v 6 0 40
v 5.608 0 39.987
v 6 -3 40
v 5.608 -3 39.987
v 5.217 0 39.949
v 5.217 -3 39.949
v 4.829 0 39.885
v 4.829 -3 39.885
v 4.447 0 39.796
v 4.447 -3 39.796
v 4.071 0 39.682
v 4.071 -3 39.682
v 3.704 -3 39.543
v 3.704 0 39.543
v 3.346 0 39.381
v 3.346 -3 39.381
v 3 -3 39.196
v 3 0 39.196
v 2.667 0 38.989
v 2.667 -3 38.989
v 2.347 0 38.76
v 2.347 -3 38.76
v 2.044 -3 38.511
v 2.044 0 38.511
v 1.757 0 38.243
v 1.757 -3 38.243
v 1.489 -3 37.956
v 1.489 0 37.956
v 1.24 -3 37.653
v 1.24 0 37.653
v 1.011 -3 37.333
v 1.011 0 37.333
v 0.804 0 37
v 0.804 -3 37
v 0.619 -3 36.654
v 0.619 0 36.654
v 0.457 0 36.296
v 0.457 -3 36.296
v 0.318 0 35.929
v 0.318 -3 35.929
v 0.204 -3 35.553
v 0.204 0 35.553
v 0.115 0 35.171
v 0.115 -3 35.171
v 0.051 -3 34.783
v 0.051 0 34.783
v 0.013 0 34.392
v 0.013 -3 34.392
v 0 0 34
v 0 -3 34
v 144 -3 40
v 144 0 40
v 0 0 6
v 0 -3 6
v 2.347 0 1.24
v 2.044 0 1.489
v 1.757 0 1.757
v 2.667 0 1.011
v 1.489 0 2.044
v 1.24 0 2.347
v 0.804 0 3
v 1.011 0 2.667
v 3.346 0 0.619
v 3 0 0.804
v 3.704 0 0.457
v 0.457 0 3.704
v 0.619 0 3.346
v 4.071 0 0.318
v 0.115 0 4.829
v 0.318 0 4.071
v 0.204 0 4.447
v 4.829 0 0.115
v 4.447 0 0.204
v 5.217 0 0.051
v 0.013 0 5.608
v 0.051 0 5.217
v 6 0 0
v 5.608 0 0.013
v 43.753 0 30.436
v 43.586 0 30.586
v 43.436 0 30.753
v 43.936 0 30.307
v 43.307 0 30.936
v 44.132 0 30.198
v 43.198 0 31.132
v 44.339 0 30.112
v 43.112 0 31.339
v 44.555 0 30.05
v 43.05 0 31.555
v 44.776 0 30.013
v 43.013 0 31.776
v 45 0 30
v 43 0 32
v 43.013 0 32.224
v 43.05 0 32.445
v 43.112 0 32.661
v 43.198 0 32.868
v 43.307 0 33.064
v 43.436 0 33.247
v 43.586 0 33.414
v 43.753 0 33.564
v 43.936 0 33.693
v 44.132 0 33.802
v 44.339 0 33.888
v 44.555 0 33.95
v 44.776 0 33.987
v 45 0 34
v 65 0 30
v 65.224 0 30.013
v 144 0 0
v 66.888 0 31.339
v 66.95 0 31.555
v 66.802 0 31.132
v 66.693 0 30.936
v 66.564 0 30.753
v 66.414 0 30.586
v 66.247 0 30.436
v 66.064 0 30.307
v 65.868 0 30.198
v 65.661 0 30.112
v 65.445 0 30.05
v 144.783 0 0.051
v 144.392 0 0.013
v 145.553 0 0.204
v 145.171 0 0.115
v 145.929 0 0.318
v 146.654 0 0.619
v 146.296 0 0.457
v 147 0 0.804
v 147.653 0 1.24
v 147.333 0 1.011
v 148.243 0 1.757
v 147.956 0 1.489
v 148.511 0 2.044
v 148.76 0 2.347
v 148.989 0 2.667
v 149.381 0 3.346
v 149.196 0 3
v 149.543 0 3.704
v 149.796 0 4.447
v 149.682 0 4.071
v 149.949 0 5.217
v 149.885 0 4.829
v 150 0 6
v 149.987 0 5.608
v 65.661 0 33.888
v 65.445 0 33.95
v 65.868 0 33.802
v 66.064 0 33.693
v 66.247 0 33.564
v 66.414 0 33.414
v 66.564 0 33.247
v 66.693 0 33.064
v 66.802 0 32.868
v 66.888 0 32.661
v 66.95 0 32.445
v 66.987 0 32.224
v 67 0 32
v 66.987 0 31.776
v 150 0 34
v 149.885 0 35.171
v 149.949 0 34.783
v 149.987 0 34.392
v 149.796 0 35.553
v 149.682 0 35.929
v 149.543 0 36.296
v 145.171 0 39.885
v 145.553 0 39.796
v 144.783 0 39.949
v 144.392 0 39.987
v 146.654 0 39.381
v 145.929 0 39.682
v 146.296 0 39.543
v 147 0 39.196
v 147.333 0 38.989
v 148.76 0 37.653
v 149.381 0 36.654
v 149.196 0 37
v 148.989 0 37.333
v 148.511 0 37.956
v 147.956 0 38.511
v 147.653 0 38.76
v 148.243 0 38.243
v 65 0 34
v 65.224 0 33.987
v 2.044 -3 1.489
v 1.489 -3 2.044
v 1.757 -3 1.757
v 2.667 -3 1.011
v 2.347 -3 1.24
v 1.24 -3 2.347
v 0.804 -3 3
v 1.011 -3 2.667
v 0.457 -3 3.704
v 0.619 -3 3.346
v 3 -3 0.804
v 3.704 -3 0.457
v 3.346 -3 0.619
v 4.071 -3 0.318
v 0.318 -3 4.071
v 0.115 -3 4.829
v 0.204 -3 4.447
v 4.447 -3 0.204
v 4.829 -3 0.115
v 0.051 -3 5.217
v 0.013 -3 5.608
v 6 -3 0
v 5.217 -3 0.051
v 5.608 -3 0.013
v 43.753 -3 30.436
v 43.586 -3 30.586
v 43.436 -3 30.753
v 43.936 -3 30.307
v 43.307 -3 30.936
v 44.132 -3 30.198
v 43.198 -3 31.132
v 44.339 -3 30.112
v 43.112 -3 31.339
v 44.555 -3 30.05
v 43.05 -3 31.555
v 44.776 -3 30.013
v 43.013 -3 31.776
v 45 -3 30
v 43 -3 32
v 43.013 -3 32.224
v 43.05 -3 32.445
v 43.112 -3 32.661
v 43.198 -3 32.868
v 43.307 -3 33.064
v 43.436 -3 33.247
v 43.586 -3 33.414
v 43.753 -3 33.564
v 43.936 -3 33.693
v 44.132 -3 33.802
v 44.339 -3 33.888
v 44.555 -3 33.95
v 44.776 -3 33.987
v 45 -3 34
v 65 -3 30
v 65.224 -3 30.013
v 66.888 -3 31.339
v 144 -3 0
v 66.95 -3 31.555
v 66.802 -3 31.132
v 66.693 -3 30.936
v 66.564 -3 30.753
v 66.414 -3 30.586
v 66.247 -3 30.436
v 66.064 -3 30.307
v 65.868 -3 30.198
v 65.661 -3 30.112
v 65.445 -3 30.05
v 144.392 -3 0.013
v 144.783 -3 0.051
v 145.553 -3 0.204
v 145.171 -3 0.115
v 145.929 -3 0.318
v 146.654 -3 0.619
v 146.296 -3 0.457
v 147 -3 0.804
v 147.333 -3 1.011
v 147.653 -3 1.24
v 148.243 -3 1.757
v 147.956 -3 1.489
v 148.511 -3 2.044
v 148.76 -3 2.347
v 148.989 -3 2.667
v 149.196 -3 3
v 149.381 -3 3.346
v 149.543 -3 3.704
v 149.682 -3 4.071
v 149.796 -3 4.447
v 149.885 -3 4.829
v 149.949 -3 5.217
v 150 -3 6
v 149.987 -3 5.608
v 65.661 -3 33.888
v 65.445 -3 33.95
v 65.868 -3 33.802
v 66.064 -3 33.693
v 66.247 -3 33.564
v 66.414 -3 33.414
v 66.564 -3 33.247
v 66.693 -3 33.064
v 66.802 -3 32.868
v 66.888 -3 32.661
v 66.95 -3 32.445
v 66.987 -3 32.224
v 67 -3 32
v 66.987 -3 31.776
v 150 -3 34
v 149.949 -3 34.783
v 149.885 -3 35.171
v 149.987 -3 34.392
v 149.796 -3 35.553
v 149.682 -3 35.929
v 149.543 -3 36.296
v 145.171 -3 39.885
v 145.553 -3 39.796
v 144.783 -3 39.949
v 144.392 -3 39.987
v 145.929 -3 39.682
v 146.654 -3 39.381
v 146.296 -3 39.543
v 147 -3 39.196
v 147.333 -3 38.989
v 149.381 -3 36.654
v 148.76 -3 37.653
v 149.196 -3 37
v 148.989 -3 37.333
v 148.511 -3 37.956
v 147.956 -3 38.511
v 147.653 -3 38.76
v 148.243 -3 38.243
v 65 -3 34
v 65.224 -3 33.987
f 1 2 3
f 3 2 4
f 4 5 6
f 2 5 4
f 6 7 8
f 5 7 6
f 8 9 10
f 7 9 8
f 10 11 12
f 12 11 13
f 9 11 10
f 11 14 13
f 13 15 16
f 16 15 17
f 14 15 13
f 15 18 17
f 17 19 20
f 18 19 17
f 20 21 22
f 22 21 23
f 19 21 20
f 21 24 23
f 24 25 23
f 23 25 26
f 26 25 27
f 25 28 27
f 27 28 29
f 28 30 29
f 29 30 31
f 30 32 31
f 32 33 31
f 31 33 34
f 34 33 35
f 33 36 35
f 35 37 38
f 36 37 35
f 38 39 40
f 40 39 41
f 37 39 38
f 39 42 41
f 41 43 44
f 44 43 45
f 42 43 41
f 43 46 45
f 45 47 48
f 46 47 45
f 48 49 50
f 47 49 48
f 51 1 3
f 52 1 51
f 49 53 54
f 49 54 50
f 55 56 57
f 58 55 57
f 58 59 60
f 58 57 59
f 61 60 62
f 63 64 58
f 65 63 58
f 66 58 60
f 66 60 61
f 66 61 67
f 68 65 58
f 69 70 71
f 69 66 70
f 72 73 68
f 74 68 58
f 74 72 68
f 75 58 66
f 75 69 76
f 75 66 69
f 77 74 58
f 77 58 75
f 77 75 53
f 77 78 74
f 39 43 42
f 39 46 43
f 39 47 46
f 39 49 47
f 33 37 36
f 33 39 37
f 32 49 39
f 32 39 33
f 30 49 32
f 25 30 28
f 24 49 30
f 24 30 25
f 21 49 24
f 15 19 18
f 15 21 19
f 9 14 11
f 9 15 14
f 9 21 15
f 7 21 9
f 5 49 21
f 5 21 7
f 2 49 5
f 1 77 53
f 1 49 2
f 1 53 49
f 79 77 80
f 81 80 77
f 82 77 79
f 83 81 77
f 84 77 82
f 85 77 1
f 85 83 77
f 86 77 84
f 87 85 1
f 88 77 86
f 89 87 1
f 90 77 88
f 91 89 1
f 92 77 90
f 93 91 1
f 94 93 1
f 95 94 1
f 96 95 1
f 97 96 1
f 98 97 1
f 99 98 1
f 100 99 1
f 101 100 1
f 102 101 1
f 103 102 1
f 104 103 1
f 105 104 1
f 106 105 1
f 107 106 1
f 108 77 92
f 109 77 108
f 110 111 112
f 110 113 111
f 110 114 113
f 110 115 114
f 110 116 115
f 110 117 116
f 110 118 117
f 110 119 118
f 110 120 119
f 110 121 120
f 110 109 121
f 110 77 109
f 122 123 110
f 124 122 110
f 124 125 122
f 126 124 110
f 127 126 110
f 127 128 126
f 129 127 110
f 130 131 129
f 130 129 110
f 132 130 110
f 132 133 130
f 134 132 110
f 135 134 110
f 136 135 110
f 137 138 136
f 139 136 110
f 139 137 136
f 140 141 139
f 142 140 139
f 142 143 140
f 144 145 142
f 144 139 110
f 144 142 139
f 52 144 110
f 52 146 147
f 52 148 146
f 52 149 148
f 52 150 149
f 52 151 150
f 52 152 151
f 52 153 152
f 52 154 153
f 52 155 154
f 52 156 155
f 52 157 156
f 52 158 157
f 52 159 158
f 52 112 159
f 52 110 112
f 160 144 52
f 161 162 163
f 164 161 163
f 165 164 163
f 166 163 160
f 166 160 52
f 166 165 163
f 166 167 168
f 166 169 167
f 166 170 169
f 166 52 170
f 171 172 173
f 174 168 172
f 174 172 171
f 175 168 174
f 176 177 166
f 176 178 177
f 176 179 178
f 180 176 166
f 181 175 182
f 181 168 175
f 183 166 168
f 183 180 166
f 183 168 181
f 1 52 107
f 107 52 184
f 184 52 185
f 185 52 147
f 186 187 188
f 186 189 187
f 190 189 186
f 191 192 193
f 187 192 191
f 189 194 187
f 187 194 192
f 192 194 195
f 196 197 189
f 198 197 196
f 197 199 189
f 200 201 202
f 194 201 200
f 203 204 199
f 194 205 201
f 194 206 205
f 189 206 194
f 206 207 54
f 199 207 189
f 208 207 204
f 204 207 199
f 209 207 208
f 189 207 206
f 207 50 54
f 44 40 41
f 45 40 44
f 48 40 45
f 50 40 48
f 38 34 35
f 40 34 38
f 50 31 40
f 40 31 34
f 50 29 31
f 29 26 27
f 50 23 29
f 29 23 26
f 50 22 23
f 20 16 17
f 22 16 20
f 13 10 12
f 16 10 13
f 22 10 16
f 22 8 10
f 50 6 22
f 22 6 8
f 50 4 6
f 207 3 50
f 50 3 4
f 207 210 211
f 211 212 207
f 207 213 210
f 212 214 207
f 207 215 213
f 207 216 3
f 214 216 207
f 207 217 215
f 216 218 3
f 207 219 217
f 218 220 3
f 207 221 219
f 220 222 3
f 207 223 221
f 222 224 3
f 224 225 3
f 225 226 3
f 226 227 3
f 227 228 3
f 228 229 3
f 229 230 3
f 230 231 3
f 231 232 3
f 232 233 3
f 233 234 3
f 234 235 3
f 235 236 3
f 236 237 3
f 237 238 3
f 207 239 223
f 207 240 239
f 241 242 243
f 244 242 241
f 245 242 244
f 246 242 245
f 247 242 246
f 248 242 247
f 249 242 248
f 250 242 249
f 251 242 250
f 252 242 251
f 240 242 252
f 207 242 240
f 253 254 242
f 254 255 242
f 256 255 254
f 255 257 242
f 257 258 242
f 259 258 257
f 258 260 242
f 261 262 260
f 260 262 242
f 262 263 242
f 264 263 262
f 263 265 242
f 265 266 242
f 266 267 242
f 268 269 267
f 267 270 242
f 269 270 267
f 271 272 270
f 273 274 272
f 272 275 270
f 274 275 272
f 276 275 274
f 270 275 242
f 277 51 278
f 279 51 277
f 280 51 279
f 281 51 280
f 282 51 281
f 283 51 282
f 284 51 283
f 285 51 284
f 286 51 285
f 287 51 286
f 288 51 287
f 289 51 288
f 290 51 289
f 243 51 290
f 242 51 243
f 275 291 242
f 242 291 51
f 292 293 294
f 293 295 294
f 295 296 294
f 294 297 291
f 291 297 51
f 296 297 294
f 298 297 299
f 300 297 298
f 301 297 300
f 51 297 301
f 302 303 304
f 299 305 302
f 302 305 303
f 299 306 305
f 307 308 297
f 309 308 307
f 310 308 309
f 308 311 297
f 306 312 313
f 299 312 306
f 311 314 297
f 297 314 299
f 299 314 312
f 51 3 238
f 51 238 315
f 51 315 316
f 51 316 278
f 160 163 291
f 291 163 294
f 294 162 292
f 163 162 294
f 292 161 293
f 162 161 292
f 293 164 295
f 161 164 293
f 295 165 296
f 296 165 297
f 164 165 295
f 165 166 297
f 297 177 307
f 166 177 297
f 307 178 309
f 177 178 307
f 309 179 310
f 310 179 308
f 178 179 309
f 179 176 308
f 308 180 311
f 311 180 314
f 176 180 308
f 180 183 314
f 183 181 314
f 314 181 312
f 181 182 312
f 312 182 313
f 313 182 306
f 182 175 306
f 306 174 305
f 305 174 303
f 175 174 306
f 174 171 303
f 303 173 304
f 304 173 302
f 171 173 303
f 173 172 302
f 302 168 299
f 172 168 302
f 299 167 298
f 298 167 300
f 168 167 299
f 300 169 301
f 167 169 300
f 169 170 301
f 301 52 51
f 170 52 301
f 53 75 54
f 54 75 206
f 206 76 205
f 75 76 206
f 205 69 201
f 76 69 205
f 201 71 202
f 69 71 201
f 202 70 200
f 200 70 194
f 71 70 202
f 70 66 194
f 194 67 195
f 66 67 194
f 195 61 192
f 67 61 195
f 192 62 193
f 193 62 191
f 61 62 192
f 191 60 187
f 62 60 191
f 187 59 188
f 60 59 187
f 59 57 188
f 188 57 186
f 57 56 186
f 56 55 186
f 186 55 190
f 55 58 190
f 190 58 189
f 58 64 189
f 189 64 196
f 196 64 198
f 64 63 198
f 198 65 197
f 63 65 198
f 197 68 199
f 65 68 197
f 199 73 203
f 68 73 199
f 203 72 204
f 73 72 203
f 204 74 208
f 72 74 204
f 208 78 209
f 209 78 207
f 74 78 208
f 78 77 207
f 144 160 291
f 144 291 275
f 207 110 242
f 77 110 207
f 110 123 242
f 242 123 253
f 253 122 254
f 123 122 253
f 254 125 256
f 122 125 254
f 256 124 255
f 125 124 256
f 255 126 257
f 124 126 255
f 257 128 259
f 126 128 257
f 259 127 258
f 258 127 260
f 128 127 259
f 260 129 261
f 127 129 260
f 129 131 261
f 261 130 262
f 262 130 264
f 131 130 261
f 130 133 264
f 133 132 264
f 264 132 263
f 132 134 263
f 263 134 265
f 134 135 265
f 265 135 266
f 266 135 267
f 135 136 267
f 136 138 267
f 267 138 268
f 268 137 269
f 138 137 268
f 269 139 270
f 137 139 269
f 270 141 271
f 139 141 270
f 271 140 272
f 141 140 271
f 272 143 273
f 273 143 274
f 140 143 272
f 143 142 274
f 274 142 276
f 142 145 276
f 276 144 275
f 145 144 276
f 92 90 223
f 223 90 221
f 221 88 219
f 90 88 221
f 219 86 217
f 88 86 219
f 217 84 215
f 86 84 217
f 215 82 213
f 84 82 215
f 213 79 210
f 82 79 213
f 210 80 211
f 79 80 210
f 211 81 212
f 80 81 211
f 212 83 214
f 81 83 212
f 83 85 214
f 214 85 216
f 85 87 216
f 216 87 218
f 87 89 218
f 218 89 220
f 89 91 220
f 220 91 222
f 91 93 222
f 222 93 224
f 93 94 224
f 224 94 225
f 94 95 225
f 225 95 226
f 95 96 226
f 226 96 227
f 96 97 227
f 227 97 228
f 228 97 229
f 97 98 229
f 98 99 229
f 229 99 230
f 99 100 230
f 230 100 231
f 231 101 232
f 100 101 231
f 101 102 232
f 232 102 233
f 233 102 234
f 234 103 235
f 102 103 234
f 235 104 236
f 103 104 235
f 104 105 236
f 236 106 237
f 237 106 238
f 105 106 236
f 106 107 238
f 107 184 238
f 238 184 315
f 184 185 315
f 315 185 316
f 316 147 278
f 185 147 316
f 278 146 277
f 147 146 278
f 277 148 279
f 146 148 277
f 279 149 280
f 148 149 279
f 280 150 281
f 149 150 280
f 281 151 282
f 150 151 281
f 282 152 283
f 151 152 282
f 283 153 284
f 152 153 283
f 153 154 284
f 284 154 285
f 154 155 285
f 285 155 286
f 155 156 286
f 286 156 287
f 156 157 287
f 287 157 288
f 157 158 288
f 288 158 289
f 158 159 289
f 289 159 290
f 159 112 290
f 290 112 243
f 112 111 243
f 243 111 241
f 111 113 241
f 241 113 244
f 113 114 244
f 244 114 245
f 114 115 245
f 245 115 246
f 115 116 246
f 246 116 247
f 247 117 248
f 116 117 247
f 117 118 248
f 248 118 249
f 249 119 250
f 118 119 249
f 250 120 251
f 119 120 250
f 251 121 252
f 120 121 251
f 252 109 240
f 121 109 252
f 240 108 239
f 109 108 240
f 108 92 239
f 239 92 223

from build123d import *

# Parameters (mm, degrees)
PAD_DEPTH    = 3
POCKET_DEPTH = 3.001


with BuildPart() as part:
    # Sketch → Pad (new body)
    with BuildSketch(Plane.XZ):
        with BuildLine():
            ThreePointArc((6, 40), (1.757359, 38.242641), (0, 34))
            Line((0, 6), (0, 34))
            ThreePointArc((0, 6), (1.757359, 1.757359), (6, 0))
            Line((144, 0), (6, 0))
            ThreePointArc((144, 0), (148.242641, 1.757359), (150, 6))
            Line((150, 34), (150, 6))
            ThreePointArc((150, 34), (148.242641, 38.242641), (144, 40))
            Line((6, 40), (144, 40))
        make_face()
    extrude(amount=PAD_DEPTH)

    # Sketch001 (on Face9 of Pad) → Pocket (cut, through all)
    with BuildSketch(Plane(origin=(0, 0, 0), x_dir=(1, 0, 0), z_dir=(0, 1, 0))):
        with BuildLine():
            ThreePointArc((45, -30), (43, -32), (45, -34))
            Line((45, -34), (65, -34))
            ThreePointArc((65, -34), (67, -32), (65, -30))
            Line((65, -30), (45, -30))
        make_face()
    extrude(amount=-POCKET_DEPTH, mode=Mode.SUBTRACT)


solid = part.part
